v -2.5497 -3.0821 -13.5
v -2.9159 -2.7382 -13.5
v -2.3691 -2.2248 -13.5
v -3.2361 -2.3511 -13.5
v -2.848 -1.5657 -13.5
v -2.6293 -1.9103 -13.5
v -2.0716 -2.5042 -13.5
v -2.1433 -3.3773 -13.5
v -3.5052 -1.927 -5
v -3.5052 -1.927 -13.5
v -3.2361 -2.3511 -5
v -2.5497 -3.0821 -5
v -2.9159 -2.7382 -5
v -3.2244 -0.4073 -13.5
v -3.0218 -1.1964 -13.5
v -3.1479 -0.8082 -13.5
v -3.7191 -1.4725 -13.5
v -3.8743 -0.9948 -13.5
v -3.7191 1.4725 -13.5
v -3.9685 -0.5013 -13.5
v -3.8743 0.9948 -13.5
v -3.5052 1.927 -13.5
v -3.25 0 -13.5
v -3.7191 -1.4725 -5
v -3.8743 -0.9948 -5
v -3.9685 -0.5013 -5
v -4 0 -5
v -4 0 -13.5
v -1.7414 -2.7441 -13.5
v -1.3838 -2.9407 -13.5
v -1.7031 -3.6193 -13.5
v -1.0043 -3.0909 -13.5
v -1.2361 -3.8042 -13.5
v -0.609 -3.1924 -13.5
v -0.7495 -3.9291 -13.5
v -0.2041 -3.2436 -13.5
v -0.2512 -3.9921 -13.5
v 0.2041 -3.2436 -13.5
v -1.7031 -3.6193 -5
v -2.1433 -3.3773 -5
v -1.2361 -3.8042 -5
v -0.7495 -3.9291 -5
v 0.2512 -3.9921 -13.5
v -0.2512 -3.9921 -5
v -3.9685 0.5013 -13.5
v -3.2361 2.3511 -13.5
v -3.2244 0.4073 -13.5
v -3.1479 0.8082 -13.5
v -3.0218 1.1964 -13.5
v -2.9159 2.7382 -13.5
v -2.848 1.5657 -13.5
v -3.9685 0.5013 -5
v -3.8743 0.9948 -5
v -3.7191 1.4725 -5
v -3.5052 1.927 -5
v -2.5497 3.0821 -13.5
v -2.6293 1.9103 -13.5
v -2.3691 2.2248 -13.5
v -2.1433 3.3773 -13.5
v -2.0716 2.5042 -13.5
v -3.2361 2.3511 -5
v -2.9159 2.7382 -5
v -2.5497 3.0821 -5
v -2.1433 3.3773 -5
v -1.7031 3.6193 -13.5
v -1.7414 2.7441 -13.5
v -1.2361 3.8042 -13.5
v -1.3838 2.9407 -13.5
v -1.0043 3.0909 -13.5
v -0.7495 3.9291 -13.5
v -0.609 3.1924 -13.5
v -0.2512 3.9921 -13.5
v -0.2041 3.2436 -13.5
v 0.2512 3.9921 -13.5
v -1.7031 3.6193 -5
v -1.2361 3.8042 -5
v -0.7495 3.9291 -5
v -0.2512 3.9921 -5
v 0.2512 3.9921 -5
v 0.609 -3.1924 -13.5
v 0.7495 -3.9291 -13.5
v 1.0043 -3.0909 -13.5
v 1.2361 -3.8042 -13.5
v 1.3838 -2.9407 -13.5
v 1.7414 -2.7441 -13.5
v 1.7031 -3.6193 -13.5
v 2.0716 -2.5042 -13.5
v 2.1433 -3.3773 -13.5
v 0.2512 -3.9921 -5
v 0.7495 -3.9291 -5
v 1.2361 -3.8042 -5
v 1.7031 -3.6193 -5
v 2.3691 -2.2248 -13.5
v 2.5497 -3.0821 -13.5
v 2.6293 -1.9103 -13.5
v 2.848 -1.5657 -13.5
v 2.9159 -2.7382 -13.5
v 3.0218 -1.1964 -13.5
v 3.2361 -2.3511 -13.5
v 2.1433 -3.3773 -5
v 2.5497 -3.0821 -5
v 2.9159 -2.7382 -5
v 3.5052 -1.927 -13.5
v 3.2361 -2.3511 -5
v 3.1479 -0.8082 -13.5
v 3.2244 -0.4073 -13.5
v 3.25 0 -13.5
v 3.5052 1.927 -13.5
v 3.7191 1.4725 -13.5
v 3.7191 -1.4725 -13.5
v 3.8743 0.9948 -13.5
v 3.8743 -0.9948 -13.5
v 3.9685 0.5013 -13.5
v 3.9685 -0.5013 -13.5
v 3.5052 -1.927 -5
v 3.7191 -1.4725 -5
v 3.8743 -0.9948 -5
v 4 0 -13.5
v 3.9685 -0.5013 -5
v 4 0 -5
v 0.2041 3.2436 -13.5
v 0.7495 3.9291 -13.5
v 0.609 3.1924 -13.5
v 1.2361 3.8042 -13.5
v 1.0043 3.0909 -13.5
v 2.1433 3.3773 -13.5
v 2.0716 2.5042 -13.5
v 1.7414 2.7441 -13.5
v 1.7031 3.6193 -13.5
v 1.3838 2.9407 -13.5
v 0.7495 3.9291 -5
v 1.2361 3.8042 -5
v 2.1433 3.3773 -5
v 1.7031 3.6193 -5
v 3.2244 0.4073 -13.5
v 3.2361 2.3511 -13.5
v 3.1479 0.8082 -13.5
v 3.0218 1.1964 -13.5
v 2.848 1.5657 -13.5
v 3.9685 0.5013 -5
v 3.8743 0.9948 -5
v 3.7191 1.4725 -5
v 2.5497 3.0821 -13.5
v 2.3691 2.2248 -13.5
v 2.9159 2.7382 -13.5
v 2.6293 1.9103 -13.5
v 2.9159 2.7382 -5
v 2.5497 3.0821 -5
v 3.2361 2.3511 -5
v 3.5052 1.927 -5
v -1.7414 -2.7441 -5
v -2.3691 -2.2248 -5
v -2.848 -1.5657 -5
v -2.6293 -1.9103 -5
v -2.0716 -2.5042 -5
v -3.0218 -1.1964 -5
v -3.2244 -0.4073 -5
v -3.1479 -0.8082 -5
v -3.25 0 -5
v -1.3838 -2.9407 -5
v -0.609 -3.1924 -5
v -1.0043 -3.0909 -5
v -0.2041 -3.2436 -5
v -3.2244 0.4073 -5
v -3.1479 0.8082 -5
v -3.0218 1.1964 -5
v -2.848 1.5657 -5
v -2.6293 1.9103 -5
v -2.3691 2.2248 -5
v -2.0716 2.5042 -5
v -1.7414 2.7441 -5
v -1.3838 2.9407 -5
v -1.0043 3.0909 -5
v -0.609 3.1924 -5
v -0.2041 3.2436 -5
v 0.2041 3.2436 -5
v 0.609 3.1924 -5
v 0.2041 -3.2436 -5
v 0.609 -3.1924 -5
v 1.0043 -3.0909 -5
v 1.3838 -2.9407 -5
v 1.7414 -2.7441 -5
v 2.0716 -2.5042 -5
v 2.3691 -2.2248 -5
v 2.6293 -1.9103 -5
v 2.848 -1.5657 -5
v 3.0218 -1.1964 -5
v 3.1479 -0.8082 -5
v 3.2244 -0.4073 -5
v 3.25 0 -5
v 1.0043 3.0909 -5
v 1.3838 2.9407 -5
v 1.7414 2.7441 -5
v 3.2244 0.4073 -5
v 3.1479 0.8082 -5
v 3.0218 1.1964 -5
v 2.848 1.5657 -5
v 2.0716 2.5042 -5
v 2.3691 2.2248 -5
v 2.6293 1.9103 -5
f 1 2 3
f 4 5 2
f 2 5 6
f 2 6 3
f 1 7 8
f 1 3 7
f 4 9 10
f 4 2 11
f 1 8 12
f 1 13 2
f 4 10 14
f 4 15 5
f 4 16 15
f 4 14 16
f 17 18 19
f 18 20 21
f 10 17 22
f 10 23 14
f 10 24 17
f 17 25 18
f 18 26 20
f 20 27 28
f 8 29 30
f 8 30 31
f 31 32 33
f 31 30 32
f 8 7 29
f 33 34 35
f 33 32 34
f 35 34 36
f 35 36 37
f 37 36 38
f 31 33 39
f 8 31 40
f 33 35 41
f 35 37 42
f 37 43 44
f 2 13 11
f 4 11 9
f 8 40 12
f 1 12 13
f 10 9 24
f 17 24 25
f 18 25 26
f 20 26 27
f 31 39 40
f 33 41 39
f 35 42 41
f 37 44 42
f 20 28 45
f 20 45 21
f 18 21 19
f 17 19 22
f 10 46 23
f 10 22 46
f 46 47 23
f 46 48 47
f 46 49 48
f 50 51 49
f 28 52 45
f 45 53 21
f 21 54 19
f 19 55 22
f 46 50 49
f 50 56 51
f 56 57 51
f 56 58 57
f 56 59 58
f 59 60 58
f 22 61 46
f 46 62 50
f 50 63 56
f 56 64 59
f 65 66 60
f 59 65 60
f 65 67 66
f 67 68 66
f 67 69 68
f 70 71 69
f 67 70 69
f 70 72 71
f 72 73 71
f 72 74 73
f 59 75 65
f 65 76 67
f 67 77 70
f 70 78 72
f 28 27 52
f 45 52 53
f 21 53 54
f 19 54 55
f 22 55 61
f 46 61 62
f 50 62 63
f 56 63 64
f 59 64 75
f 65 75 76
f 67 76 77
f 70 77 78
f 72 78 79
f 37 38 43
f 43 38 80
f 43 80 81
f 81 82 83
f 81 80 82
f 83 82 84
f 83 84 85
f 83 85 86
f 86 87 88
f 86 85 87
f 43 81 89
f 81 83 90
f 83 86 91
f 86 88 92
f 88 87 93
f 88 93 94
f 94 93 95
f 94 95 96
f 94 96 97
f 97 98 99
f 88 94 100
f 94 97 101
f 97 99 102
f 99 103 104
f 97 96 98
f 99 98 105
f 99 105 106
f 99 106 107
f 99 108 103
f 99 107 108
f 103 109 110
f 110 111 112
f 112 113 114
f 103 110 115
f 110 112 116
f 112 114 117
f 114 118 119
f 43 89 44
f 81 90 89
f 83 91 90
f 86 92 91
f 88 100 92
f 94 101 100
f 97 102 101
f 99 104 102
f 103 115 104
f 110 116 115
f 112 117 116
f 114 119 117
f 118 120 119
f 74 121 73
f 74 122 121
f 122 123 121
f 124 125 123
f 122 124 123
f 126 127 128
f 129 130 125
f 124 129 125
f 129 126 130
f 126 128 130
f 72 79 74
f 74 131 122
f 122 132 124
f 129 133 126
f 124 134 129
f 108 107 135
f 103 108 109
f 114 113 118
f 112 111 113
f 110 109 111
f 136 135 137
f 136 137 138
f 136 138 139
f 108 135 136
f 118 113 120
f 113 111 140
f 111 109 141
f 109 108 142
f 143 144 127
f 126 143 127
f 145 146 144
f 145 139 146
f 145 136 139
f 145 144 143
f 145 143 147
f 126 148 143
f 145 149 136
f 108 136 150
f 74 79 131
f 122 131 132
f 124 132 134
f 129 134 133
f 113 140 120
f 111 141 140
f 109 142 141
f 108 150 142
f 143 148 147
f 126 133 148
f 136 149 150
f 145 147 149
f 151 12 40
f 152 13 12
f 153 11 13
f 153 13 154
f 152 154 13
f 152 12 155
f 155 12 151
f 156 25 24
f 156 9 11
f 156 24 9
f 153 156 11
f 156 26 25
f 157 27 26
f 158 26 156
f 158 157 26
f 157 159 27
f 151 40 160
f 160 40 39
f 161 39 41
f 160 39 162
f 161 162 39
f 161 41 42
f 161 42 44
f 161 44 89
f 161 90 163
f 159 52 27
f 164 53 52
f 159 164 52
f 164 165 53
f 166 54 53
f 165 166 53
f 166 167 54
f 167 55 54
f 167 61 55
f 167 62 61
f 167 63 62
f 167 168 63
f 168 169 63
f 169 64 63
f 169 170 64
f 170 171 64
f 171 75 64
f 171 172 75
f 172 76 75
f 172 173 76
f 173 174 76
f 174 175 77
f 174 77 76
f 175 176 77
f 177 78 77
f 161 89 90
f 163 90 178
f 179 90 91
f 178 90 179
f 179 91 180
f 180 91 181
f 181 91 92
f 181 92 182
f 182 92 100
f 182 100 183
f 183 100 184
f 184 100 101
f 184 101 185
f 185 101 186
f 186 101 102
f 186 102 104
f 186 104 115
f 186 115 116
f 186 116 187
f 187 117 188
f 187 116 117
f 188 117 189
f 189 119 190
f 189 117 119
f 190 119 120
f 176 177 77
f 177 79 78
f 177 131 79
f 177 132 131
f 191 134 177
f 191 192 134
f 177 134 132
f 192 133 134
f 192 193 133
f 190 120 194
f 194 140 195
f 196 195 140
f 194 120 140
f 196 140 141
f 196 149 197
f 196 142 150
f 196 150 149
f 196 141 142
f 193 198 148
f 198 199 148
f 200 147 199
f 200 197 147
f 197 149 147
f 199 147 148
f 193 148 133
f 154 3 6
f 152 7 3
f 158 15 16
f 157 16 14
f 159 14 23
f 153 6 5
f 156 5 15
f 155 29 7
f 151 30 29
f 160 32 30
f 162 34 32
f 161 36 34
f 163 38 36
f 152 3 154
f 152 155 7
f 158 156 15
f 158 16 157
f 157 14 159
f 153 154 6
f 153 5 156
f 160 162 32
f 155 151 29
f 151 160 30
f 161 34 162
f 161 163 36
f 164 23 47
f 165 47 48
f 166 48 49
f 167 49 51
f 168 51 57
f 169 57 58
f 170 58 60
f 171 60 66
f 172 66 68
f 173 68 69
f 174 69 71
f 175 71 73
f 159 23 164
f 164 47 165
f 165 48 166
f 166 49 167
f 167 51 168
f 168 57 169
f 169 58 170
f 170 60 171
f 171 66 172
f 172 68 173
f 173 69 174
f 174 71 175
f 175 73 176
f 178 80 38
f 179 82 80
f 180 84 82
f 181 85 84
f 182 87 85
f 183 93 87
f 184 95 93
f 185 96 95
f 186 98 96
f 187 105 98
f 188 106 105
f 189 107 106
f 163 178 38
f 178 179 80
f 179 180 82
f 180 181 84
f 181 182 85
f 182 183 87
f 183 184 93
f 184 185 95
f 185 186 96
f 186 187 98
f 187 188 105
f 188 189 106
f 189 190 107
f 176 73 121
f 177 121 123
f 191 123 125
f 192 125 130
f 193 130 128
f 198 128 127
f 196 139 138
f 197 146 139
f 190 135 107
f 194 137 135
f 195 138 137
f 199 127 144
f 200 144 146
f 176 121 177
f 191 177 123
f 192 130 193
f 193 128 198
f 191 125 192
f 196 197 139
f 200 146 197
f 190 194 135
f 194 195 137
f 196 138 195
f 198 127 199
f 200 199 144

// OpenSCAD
$fn = 50;

difference() {
	union() {
		translate(v = [0, 0, -13.5]) {
			cylinder(h = 16.5, r = 4.0);
		}
		#translate(v = [0, 0, -15.0]) {
			cylinder(h = 15, r = 2.875);
		}
	}
	union() {
		translate(v = [0, 0, 0]) {
			rotate(a = [0, 0, 0]) {
				difference() {
					union() {
						translate(v = [0, 0, -5]) {
							linear_extrude(height = 5) {
								polygon(points = [[5.914249999999999, 0.0], [2.957125, 5.1218907443321156], [-2.9571249999999982, 5.1218907443321156], [-5.914249999999999, 7.242867331857232e-16], [-2.9571250000000022, -5.121890744332115], [2.9571249999999956, -5.121890744332118]]);
							}
						}
					}
					union();
				}
			}
		}
		#cylinder(h = 3, r = 6.25);
		#translate(v = [0, 0, -100.0]) {
			cylinder(h = 200, r = 3.25);
		}
	}
}
